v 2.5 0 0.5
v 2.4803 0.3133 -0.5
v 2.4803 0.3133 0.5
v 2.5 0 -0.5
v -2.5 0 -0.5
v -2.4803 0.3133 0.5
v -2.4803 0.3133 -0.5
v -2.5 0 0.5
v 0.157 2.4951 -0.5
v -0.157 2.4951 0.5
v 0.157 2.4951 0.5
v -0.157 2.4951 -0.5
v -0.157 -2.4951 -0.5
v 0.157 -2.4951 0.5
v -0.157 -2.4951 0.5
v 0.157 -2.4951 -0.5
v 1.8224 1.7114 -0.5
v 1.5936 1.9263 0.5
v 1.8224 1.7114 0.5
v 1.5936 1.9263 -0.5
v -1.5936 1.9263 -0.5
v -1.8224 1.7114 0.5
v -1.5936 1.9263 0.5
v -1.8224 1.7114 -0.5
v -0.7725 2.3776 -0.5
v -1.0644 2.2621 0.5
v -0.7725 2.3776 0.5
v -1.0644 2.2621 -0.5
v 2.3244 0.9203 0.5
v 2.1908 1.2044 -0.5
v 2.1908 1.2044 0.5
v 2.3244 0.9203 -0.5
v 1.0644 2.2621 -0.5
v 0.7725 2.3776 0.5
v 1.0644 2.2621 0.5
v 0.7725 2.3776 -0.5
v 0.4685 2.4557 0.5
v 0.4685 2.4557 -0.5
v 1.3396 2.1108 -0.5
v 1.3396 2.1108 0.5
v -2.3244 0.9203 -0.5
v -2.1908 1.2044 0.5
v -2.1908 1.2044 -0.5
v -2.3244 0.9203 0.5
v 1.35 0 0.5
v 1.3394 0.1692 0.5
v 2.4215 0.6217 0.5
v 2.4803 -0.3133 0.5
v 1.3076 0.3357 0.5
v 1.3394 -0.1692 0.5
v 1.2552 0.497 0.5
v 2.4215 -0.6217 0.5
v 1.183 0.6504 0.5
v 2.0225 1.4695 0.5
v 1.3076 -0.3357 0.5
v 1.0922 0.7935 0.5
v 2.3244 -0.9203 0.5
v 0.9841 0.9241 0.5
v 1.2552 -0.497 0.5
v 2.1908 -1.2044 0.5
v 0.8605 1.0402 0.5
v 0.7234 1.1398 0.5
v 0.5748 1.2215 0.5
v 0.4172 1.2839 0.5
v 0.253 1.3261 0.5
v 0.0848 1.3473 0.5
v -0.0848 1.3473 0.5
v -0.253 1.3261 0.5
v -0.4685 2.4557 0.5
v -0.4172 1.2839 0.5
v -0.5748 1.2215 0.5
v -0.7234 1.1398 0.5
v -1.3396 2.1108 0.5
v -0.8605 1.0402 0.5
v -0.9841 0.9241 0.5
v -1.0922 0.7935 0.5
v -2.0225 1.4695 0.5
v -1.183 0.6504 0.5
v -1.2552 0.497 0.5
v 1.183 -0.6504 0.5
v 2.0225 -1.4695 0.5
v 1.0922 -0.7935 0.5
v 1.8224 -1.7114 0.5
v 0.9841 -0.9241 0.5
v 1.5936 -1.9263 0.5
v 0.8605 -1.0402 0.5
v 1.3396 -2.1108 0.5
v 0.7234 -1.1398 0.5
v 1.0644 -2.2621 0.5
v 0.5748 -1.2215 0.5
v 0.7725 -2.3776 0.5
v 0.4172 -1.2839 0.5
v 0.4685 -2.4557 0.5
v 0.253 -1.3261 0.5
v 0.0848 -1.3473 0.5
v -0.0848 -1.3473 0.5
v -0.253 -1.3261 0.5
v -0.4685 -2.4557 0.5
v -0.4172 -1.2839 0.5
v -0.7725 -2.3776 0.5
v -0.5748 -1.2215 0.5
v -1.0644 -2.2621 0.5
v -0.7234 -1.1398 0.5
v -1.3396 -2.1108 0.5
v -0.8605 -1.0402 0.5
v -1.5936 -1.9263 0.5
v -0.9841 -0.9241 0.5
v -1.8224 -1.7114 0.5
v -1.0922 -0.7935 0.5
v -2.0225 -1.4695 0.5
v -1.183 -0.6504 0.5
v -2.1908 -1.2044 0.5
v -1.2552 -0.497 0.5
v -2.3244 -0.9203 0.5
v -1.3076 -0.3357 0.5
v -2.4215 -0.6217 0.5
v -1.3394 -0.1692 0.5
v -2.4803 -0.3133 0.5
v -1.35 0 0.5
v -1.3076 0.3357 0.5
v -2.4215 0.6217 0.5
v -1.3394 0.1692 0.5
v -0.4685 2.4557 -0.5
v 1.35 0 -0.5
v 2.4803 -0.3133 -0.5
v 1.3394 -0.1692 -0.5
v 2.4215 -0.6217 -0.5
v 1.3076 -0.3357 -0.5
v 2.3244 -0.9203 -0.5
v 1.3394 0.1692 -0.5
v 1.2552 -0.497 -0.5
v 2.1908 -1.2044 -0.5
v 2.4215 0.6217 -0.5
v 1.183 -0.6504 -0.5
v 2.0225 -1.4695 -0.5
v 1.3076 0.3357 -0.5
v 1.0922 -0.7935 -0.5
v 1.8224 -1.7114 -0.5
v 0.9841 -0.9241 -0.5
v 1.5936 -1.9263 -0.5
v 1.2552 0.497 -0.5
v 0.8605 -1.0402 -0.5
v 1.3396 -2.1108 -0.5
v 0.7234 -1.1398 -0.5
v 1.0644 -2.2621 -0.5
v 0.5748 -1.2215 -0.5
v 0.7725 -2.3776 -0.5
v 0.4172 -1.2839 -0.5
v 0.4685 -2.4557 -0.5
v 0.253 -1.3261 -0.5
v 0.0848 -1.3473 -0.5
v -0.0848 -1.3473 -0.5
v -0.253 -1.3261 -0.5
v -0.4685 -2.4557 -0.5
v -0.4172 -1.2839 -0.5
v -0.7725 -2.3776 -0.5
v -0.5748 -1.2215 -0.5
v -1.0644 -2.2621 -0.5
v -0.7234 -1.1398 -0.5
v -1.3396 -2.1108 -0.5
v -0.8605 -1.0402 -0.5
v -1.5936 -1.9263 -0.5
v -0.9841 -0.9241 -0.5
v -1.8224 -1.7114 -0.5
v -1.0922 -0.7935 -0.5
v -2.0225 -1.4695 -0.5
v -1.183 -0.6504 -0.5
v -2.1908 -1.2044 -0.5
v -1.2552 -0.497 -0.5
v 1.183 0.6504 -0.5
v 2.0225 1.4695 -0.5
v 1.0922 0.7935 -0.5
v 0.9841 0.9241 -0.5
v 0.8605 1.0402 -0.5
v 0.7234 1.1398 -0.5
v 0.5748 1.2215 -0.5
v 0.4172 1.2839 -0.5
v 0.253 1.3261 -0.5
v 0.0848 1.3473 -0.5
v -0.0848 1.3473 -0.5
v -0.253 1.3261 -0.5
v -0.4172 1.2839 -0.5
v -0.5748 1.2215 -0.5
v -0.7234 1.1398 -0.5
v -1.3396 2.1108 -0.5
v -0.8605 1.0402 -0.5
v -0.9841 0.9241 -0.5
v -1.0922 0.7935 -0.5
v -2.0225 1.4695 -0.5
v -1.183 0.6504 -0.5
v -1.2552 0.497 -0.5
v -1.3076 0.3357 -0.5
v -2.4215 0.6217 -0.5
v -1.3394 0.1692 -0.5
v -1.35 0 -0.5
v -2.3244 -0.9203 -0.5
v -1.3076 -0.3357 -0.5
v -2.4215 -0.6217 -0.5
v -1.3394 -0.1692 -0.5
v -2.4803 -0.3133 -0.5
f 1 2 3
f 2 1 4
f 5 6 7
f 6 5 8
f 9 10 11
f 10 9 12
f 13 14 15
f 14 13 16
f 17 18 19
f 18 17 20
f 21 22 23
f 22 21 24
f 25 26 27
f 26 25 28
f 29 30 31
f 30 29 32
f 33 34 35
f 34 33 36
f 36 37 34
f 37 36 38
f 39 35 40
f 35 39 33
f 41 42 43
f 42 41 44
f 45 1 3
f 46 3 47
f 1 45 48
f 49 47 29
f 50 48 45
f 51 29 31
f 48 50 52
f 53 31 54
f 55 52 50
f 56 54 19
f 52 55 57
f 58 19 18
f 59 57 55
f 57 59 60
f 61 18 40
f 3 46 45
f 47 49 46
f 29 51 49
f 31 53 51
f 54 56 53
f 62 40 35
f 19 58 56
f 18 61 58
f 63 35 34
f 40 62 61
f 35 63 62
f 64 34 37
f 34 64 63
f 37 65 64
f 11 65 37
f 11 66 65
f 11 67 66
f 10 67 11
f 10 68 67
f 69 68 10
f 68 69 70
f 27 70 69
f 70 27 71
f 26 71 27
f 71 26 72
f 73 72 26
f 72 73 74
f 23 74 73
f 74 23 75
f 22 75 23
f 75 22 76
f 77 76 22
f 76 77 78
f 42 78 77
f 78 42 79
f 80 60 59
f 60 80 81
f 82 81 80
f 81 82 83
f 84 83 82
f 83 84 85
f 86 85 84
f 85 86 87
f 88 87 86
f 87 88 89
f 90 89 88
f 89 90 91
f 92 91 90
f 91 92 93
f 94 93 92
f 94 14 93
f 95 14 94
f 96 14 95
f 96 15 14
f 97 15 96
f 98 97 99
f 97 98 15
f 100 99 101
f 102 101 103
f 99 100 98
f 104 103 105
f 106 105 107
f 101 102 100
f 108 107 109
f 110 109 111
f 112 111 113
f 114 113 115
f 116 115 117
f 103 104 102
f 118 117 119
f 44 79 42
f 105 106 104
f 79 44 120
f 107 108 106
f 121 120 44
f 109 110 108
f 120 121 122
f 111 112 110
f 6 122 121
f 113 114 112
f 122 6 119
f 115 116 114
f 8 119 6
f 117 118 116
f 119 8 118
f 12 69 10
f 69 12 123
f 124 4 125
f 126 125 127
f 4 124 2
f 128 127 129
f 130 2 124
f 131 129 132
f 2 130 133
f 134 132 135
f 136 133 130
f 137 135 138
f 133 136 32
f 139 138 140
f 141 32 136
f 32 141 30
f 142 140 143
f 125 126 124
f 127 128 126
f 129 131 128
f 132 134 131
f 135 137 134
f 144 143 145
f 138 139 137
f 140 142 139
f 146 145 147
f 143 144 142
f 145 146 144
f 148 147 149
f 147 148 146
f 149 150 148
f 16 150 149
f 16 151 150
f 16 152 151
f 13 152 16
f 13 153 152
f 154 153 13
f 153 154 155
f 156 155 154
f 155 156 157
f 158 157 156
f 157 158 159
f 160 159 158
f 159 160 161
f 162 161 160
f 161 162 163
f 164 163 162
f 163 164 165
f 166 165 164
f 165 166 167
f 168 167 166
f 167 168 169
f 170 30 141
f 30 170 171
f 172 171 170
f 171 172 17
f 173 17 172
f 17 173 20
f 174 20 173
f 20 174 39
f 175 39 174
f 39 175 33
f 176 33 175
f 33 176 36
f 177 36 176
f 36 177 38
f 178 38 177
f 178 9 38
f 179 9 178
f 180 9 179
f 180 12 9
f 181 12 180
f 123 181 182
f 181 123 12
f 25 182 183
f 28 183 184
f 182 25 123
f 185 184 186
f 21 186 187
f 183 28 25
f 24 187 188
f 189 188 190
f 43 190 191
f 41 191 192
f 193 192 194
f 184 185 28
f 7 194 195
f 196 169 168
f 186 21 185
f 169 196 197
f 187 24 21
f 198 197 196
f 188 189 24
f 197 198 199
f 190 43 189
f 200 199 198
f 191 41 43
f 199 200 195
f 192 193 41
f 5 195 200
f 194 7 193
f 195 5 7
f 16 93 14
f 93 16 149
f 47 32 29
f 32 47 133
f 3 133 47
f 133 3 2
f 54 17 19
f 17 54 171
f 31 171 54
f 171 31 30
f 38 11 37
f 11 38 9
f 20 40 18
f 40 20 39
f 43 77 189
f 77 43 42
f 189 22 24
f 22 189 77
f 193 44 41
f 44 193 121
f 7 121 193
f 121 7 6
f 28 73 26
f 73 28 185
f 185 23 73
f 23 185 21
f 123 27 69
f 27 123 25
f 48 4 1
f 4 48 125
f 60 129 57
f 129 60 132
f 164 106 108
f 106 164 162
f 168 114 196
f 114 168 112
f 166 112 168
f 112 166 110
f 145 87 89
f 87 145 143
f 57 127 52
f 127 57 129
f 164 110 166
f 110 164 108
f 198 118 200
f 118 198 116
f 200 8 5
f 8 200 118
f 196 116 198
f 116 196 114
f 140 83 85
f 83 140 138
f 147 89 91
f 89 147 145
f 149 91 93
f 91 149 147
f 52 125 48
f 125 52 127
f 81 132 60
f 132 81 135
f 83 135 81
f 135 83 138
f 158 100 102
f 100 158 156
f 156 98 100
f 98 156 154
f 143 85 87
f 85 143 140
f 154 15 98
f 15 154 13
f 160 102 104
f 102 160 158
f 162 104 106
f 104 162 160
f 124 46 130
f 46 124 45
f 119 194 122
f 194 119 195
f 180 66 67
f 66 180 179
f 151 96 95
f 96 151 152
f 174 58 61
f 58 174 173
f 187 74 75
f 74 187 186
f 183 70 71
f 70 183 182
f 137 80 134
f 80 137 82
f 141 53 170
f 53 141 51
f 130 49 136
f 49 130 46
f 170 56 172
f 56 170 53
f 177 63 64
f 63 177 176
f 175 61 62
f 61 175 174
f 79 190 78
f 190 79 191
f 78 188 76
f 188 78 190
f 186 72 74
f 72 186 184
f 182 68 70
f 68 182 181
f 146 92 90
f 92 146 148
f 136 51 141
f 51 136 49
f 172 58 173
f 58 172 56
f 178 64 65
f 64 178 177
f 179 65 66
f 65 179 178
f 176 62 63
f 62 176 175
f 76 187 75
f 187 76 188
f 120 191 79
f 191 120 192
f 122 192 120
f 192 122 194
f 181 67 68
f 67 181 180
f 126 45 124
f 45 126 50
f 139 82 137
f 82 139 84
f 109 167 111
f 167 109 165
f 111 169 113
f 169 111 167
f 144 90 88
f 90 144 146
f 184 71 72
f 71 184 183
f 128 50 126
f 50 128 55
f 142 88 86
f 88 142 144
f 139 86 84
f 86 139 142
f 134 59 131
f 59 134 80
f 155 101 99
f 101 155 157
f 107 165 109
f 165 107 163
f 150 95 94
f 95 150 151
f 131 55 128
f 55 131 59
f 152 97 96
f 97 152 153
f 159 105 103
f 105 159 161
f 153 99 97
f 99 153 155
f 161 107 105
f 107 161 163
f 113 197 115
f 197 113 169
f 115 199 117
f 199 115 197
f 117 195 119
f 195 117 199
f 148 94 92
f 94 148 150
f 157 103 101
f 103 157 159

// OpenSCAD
$fn = 50;


difference() {
	union() {
		translate(v = [0, 0, -0.5000000000]) {
			cylinder(h = 1, r = 2.5000000000);
		}
	}
	union() {
		translate(v = [0, 0, -100.0000000000]) {
			cylinder(h = 200, r = 1.3500000000);
		}
	}
}
